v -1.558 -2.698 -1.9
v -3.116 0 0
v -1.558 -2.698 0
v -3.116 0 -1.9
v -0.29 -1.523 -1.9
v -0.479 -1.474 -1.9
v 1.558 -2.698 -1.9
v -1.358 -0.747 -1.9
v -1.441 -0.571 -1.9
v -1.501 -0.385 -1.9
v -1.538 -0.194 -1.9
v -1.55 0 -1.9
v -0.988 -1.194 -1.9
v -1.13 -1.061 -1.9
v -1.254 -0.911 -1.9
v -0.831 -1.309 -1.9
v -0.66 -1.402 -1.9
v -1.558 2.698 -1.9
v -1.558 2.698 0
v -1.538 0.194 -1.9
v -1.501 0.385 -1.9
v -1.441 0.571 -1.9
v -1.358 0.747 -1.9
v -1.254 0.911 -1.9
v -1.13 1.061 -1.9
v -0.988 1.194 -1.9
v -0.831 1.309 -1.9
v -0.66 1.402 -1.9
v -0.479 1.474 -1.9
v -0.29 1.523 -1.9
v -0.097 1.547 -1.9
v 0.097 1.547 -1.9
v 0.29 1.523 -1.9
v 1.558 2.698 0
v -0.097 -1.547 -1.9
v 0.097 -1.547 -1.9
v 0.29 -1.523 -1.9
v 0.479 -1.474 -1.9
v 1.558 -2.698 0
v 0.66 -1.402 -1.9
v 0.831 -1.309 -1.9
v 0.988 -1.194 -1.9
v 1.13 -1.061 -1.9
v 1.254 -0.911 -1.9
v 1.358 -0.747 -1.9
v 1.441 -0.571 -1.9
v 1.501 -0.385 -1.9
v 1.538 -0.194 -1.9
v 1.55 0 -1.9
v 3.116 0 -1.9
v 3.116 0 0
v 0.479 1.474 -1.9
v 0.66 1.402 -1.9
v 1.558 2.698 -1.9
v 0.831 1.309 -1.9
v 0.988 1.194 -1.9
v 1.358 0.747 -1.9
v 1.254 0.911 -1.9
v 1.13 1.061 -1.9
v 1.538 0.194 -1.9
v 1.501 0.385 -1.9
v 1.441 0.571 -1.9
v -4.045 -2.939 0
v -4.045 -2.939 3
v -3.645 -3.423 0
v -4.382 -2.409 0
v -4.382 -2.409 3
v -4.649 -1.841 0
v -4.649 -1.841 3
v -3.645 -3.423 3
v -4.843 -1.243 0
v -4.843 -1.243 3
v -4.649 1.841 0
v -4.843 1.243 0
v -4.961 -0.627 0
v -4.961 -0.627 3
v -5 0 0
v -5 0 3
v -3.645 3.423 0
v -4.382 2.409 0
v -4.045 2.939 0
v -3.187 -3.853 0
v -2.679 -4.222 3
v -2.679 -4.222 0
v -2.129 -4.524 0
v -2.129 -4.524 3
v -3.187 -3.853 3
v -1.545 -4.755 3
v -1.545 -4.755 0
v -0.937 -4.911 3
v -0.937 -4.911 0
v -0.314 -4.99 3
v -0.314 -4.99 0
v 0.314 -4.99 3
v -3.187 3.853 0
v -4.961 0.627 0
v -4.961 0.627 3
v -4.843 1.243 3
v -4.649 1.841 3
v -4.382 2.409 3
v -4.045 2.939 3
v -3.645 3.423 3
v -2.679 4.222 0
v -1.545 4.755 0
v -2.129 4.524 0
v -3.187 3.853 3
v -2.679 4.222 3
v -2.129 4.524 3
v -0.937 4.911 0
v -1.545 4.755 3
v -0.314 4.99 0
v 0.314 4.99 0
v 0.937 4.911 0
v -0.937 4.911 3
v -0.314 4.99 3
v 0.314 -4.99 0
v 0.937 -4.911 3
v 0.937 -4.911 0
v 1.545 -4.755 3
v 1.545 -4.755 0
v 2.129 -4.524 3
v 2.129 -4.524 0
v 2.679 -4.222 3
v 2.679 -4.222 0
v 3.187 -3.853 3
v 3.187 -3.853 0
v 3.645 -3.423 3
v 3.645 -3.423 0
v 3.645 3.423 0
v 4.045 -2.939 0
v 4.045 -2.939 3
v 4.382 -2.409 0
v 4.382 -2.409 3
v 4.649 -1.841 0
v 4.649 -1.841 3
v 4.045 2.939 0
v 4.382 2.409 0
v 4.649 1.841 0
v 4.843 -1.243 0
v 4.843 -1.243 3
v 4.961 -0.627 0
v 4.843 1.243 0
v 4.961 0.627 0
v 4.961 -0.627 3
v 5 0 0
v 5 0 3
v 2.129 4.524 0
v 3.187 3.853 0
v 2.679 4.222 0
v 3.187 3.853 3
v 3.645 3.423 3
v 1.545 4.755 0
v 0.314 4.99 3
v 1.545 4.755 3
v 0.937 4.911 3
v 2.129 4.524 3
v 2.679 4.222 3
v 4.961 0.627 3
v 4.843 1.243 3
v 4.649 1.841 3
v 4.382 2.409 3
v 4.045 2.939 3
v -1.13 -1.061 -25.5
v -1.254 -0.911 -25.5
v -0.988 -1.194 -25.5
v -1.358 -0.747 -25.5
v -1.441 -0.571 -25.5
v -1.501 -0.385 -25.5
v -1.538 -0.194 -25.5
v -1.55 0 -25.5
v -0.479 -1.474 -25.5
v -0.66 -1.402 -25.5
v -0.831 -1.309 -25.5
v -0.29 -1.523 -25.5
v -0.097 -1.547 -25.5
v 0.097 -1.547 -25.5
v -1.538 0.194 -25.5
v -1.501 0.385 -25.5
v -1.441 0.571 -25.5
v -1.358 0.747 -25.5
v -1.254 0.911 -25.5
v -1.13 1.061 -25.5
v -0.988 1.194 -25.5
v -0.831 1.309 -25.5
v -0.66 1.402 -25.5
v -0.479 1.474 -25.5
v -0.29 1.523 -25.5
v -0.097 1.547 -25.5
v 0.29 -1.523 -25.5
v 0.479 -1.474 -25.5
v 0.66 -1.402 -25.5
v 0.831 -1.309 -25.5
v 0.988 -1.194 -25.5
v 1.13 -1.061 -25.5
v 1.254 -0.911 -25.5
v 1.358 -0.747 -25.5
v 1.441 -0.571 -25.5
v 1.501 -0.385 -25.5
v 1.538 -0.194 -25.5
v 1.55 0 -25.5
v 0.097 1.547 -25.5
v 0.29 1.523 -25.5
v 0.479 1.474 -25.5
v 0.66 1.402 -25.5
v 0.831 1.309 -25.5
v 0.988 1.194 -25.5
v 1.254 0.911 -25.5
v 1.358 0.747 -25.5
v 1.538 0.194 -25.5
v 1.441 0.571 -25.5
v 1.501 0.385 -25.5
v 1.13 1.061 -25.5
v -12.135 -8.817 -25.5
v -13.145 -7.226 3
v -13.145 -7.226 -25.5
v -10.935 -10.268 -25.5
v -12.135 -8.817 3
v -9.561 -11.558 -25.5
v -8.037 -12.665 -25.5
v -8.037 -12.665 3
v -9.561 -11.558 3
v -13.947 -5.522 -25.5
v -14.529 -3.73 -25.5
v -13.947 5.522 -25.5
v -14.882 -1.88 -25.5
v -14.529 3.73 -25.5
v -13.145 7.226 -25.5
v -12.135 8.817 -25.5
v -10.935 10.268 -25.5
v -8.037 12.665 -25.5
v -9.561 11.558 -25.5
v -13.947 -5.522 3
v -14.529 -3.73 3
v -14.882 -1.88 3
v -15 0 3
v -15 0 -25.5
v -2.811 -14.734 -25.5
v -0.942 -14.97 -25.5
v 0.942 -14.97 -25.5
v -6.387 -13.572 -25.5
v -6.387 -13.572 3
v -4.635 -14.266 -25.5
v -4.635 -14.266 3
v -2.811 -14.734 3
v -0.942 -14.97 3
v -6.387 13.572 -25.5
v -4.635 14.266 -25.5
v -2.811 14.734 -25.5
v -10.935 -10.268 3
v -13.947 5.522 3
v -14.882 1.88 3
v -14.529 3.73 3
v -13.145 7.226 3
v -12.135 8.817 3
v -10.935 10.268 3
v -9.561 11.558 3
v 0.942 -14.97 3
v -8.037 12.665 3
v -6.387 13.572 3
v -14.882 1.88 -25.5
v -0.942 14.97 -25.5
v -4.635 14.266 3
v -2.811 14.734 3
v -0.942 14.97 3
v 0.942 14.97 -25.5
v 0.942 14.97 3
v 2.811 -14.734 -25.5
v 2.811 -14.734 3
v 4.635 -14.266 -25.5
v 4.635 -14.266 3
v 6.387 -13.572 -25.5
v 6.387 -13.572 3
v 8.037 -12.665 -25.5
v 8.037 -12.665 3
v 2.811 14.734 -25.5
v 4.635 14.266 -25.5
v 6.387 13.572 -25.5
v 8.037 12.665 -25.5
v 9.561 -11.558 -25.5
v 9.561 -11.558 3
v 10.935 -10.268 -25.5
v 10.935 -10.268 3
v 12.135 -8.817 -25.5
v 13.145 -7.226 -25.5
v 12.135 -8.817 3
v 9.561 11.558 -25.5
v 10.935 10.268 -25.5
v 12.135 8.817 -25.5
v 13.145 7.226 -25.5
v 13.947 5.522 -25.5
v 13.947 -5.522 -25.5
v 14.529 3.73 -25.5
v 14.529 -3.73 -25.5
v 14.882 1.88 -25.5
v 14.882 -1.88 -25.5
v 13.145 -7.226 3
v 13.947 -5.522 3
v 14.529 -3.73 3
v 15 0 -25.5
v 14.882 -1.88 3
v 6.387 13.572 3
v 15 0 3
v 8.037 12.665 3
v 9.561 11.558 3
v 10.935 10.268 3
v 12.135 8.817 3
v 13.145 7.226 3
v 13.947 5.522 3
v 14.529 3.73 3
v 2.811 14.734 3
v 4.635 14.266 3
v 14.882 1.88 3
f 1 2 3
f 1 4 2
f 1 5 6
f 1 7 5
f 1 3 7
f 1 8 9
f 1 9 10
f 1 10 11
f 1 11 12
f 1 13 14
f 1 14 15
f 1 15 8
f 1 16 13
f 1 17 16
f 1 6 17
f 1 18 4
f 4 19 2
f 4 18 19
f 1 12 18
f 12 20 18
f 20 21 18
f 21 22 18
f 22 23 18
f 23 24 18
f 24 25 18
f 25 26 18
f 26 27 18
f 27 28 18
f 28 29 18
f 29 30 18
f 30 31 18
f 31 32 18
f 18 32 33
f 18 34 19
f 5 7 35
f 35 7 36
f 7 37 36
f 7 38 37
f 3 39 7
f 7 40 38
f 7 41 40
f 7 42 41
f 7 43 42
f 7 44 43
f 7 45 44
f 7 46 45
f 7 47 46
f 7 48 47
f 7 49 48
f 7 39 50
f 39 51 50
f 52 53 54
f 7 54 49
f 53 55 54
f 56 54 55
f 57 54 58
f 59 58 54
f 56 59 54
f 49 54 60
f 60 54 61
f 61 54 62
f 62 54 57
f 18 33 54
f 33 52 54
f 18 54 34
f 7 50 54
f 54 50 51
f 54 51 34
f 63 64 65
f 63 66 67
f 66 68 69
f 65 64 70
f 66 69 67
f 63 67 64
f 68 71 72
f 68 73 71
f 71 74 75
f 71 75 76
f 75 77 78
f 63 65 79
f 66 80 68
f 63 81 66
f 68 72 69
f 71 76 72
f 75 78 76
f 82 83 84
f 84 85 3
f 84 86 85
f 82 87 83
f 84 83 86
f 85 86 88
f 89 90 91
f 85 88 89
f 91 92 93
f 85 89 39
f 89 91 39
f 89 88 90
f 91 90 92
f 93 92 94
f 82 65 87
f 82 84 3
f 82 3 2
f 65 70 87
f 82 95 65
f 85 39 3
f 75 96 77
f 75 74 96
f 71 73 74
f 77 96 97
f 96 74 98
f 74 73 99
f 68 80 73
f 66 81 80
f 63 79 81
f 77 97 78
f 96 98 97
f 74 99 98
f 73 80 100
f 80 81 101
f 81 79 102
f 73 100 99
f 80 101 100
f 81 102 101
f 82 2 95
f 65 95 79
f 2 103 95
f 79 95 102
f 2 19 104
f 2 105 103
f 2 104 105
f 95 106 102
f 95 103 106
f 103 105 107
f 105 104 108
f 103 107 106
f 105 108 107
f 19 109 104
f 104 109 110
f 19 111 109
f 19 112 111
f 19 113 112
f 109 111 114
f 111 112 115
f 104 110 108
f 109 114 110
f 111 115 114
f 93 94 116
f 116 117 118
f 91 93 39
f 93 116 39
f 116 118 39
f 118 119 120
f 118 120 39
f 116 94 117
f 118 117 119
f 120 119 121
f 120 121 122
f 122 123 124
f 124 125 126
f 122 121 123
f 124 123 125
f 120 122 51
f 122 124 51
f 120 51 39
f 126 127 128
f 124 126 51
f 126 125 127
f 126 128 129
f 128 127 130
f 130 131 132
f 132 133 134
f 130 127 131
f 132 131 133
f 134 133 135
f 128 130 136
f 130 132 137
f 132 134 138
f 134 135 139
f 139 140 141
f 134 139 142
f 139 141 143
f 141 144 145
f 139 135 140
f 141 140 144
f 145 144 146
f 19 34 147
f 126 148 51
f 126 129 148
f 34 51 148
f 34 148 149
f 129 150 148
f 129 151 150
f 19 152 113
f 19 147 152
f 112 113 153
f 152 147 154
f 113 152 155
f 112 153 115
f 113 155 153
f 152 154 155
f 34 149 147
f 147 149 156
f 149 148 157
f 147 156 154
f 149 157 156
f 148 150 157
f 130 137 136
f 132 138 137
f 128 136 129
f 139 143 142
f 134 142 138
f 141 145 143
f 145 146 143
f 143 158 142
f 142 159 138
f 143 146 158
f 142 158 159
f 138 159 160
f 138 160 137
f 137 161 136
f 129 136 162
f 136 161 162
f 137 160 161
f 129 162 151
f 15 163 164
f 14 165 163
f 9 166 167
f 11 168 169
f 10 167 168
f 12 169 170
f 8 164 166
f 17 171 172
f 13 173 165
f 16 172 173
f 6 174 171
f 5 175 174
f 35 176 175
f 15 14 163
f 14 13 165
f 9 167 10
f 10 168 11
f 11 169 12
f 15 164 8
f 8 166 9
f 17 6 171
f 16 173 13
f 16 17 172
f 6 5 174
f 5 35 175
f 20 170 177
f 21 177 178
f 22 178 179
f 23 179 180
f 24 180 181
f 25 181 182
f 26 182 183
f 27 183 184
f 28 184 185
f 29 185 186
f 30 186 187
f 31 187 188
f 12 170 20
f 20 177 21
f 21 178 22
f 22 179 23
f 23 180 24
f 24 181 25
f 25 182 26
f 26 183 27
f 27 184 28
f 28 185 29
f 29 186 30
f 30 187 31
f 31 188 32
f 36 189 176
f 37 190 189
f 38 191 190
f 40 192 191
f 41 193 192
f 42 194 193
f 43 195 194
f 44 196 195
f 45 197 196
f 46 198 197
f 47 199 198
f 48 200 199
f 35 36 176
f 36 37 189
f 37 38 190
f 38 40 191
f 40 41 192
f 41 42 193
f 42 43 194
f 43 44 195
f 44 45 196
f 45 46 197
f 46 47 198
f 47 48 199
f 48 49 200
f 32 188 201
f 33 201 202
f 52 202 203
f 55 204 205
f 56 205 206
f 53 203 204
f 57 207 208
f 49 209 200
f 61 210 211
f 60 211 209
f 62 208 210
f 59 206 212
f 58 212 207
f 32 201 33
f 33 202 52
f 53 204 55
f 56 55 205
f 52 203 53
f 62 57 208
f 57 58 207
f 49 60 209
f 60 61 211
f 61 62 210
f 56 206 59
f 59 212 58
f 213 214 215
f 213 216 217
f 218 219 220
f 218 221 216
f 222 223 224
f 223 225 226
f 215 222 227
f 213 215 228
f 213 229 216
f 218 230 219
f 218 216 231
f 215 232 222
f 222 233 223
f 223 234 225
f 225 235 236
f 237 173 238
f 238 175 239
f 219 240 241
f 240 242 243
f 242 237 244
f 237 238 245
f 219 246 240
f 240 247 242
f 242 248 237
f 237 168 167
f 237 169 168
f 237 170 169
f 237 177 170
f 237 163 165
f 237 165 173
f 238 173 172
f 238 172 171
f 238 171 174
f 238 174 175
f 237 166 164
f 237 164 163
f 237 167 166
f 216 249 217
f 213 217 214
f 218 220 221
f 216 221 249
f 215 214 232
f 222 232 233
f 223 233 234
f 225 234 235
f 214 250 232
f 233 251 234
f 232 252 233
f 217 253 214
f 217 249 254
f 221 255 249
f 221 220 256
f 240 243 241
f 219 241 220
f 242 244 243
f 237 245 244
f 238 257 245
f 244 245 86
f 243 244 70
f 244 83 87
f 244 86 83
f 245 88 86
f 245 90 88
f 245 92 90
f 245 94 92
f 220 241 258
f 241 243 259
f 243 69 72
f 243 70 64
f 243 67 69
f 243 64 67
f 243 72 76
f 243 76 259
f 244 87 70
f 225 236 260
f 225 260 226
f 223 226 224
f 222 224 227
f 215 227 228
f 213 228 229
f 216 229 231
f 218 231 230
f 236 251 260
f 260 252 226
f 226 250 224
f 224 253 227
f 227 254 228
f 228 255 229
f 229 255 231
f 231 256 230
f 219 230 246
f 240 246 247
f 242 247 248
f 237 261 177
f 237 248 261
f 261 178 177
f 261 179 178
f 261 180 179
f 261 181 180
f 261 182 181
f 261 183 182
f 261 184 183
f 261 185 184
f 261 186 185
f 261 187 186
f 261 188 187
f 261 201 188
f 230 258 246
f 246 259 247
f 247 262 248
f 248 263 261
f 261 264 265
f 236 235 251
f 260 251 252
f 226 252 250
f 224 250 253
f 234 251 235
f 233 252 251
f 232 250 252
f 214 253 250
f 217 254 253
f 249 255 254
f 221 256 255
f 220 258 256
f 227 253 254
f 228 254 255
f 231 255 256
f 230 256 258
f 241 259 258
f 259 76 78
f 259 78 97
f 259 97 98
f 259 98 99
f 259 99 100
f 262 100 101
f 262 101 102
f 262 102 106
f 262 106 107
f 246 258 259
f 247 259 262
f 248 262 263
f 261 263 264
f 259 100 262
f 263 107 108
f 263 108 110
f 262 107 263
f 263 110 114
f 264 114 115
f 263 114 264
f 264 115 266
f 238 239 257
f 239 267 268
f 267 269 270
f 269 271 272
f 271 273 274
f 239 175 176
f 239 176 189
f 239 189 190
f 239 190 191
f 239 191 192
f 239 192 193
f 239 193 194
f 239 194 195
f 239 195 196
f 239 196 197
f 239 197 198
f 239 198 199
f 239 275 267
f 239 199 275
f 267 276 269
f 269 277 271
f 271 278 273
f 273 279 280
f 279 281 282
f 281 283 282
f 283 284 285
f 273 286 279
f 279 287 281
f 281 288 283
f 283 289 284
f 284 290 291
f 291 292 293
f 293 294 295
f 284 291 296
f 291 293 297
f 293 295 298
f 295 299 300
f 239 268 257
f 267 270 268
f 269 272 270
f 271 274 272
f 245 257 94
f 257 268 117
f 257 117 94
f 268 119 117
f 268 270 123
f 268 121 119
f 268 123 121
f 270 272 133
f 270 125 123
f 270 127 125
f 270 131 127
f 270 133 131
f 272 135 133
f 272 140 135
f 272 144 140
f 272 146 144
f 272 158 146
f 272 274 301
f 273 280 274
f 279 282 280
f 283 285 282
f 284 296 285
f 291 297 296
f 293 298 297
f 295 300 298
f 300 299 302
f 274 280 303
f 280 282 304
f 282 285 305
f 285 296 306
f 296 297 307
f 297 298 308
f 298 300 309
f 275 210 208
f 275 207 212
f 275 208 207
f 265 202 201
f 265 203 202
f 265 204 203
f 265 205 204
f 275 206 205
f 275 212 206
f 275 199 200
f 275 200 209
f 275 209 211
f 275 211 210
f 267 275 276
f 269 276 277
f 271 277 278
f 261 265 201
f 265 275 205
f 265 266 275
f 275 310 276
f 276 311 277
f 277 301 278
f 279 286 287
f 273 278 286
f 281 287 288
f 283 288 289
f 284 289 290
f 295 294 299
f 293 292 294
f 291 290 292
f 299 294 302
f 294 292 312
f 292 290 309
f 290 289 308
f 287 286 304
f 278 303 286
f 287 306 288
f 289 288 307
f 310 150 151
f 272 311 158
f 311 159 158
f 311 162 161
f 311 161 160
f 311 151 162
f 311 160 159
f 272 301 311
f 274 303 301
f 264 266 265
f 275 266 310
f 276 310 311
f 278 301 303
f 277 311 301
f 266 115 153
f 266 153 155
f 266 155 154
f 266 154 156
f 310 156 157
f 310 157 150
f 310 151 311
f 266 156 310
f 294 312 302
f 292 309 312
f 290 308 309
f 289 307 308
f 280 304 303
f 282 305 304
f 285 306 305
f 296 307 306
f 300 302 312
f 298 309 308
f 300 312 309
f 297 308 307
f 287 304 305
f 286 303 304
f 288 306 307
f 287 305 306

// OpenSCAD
$fn = 50;

difference() {
	union() {
		translate(v = [0, 0, -25.5]) {
			cylinder(h = 28.5, r = 15.0);
		}
	}
	union() {
		translate(v = [0, 0, 0]) {
			rotate(a = [0, 0, 0]) {
				difference() {
					union() {
						translate(v = [0, 0, -1.9]) {
							linear_extrude(height = 1.9) {
								polygon(points = [[3.1158, 0.0], [1.5579000000000005, 2.698361953111554], [-1.5578999999999994, 2.6983619531115544], [-3.1158, 3.815754496783323e-16], [-1.5579000000000014, -2.6983619531115535], [1.557899999999998, -2.6983619531115552]]);
							}
						}
					}
					union();
				}
			}
		}
		#cylinder(h = 3, r = 5.0);
		#translate(v = [0, 0, -100.0]) {
			cylinder(h = 200, r = 1.55);
		}
	}
}
